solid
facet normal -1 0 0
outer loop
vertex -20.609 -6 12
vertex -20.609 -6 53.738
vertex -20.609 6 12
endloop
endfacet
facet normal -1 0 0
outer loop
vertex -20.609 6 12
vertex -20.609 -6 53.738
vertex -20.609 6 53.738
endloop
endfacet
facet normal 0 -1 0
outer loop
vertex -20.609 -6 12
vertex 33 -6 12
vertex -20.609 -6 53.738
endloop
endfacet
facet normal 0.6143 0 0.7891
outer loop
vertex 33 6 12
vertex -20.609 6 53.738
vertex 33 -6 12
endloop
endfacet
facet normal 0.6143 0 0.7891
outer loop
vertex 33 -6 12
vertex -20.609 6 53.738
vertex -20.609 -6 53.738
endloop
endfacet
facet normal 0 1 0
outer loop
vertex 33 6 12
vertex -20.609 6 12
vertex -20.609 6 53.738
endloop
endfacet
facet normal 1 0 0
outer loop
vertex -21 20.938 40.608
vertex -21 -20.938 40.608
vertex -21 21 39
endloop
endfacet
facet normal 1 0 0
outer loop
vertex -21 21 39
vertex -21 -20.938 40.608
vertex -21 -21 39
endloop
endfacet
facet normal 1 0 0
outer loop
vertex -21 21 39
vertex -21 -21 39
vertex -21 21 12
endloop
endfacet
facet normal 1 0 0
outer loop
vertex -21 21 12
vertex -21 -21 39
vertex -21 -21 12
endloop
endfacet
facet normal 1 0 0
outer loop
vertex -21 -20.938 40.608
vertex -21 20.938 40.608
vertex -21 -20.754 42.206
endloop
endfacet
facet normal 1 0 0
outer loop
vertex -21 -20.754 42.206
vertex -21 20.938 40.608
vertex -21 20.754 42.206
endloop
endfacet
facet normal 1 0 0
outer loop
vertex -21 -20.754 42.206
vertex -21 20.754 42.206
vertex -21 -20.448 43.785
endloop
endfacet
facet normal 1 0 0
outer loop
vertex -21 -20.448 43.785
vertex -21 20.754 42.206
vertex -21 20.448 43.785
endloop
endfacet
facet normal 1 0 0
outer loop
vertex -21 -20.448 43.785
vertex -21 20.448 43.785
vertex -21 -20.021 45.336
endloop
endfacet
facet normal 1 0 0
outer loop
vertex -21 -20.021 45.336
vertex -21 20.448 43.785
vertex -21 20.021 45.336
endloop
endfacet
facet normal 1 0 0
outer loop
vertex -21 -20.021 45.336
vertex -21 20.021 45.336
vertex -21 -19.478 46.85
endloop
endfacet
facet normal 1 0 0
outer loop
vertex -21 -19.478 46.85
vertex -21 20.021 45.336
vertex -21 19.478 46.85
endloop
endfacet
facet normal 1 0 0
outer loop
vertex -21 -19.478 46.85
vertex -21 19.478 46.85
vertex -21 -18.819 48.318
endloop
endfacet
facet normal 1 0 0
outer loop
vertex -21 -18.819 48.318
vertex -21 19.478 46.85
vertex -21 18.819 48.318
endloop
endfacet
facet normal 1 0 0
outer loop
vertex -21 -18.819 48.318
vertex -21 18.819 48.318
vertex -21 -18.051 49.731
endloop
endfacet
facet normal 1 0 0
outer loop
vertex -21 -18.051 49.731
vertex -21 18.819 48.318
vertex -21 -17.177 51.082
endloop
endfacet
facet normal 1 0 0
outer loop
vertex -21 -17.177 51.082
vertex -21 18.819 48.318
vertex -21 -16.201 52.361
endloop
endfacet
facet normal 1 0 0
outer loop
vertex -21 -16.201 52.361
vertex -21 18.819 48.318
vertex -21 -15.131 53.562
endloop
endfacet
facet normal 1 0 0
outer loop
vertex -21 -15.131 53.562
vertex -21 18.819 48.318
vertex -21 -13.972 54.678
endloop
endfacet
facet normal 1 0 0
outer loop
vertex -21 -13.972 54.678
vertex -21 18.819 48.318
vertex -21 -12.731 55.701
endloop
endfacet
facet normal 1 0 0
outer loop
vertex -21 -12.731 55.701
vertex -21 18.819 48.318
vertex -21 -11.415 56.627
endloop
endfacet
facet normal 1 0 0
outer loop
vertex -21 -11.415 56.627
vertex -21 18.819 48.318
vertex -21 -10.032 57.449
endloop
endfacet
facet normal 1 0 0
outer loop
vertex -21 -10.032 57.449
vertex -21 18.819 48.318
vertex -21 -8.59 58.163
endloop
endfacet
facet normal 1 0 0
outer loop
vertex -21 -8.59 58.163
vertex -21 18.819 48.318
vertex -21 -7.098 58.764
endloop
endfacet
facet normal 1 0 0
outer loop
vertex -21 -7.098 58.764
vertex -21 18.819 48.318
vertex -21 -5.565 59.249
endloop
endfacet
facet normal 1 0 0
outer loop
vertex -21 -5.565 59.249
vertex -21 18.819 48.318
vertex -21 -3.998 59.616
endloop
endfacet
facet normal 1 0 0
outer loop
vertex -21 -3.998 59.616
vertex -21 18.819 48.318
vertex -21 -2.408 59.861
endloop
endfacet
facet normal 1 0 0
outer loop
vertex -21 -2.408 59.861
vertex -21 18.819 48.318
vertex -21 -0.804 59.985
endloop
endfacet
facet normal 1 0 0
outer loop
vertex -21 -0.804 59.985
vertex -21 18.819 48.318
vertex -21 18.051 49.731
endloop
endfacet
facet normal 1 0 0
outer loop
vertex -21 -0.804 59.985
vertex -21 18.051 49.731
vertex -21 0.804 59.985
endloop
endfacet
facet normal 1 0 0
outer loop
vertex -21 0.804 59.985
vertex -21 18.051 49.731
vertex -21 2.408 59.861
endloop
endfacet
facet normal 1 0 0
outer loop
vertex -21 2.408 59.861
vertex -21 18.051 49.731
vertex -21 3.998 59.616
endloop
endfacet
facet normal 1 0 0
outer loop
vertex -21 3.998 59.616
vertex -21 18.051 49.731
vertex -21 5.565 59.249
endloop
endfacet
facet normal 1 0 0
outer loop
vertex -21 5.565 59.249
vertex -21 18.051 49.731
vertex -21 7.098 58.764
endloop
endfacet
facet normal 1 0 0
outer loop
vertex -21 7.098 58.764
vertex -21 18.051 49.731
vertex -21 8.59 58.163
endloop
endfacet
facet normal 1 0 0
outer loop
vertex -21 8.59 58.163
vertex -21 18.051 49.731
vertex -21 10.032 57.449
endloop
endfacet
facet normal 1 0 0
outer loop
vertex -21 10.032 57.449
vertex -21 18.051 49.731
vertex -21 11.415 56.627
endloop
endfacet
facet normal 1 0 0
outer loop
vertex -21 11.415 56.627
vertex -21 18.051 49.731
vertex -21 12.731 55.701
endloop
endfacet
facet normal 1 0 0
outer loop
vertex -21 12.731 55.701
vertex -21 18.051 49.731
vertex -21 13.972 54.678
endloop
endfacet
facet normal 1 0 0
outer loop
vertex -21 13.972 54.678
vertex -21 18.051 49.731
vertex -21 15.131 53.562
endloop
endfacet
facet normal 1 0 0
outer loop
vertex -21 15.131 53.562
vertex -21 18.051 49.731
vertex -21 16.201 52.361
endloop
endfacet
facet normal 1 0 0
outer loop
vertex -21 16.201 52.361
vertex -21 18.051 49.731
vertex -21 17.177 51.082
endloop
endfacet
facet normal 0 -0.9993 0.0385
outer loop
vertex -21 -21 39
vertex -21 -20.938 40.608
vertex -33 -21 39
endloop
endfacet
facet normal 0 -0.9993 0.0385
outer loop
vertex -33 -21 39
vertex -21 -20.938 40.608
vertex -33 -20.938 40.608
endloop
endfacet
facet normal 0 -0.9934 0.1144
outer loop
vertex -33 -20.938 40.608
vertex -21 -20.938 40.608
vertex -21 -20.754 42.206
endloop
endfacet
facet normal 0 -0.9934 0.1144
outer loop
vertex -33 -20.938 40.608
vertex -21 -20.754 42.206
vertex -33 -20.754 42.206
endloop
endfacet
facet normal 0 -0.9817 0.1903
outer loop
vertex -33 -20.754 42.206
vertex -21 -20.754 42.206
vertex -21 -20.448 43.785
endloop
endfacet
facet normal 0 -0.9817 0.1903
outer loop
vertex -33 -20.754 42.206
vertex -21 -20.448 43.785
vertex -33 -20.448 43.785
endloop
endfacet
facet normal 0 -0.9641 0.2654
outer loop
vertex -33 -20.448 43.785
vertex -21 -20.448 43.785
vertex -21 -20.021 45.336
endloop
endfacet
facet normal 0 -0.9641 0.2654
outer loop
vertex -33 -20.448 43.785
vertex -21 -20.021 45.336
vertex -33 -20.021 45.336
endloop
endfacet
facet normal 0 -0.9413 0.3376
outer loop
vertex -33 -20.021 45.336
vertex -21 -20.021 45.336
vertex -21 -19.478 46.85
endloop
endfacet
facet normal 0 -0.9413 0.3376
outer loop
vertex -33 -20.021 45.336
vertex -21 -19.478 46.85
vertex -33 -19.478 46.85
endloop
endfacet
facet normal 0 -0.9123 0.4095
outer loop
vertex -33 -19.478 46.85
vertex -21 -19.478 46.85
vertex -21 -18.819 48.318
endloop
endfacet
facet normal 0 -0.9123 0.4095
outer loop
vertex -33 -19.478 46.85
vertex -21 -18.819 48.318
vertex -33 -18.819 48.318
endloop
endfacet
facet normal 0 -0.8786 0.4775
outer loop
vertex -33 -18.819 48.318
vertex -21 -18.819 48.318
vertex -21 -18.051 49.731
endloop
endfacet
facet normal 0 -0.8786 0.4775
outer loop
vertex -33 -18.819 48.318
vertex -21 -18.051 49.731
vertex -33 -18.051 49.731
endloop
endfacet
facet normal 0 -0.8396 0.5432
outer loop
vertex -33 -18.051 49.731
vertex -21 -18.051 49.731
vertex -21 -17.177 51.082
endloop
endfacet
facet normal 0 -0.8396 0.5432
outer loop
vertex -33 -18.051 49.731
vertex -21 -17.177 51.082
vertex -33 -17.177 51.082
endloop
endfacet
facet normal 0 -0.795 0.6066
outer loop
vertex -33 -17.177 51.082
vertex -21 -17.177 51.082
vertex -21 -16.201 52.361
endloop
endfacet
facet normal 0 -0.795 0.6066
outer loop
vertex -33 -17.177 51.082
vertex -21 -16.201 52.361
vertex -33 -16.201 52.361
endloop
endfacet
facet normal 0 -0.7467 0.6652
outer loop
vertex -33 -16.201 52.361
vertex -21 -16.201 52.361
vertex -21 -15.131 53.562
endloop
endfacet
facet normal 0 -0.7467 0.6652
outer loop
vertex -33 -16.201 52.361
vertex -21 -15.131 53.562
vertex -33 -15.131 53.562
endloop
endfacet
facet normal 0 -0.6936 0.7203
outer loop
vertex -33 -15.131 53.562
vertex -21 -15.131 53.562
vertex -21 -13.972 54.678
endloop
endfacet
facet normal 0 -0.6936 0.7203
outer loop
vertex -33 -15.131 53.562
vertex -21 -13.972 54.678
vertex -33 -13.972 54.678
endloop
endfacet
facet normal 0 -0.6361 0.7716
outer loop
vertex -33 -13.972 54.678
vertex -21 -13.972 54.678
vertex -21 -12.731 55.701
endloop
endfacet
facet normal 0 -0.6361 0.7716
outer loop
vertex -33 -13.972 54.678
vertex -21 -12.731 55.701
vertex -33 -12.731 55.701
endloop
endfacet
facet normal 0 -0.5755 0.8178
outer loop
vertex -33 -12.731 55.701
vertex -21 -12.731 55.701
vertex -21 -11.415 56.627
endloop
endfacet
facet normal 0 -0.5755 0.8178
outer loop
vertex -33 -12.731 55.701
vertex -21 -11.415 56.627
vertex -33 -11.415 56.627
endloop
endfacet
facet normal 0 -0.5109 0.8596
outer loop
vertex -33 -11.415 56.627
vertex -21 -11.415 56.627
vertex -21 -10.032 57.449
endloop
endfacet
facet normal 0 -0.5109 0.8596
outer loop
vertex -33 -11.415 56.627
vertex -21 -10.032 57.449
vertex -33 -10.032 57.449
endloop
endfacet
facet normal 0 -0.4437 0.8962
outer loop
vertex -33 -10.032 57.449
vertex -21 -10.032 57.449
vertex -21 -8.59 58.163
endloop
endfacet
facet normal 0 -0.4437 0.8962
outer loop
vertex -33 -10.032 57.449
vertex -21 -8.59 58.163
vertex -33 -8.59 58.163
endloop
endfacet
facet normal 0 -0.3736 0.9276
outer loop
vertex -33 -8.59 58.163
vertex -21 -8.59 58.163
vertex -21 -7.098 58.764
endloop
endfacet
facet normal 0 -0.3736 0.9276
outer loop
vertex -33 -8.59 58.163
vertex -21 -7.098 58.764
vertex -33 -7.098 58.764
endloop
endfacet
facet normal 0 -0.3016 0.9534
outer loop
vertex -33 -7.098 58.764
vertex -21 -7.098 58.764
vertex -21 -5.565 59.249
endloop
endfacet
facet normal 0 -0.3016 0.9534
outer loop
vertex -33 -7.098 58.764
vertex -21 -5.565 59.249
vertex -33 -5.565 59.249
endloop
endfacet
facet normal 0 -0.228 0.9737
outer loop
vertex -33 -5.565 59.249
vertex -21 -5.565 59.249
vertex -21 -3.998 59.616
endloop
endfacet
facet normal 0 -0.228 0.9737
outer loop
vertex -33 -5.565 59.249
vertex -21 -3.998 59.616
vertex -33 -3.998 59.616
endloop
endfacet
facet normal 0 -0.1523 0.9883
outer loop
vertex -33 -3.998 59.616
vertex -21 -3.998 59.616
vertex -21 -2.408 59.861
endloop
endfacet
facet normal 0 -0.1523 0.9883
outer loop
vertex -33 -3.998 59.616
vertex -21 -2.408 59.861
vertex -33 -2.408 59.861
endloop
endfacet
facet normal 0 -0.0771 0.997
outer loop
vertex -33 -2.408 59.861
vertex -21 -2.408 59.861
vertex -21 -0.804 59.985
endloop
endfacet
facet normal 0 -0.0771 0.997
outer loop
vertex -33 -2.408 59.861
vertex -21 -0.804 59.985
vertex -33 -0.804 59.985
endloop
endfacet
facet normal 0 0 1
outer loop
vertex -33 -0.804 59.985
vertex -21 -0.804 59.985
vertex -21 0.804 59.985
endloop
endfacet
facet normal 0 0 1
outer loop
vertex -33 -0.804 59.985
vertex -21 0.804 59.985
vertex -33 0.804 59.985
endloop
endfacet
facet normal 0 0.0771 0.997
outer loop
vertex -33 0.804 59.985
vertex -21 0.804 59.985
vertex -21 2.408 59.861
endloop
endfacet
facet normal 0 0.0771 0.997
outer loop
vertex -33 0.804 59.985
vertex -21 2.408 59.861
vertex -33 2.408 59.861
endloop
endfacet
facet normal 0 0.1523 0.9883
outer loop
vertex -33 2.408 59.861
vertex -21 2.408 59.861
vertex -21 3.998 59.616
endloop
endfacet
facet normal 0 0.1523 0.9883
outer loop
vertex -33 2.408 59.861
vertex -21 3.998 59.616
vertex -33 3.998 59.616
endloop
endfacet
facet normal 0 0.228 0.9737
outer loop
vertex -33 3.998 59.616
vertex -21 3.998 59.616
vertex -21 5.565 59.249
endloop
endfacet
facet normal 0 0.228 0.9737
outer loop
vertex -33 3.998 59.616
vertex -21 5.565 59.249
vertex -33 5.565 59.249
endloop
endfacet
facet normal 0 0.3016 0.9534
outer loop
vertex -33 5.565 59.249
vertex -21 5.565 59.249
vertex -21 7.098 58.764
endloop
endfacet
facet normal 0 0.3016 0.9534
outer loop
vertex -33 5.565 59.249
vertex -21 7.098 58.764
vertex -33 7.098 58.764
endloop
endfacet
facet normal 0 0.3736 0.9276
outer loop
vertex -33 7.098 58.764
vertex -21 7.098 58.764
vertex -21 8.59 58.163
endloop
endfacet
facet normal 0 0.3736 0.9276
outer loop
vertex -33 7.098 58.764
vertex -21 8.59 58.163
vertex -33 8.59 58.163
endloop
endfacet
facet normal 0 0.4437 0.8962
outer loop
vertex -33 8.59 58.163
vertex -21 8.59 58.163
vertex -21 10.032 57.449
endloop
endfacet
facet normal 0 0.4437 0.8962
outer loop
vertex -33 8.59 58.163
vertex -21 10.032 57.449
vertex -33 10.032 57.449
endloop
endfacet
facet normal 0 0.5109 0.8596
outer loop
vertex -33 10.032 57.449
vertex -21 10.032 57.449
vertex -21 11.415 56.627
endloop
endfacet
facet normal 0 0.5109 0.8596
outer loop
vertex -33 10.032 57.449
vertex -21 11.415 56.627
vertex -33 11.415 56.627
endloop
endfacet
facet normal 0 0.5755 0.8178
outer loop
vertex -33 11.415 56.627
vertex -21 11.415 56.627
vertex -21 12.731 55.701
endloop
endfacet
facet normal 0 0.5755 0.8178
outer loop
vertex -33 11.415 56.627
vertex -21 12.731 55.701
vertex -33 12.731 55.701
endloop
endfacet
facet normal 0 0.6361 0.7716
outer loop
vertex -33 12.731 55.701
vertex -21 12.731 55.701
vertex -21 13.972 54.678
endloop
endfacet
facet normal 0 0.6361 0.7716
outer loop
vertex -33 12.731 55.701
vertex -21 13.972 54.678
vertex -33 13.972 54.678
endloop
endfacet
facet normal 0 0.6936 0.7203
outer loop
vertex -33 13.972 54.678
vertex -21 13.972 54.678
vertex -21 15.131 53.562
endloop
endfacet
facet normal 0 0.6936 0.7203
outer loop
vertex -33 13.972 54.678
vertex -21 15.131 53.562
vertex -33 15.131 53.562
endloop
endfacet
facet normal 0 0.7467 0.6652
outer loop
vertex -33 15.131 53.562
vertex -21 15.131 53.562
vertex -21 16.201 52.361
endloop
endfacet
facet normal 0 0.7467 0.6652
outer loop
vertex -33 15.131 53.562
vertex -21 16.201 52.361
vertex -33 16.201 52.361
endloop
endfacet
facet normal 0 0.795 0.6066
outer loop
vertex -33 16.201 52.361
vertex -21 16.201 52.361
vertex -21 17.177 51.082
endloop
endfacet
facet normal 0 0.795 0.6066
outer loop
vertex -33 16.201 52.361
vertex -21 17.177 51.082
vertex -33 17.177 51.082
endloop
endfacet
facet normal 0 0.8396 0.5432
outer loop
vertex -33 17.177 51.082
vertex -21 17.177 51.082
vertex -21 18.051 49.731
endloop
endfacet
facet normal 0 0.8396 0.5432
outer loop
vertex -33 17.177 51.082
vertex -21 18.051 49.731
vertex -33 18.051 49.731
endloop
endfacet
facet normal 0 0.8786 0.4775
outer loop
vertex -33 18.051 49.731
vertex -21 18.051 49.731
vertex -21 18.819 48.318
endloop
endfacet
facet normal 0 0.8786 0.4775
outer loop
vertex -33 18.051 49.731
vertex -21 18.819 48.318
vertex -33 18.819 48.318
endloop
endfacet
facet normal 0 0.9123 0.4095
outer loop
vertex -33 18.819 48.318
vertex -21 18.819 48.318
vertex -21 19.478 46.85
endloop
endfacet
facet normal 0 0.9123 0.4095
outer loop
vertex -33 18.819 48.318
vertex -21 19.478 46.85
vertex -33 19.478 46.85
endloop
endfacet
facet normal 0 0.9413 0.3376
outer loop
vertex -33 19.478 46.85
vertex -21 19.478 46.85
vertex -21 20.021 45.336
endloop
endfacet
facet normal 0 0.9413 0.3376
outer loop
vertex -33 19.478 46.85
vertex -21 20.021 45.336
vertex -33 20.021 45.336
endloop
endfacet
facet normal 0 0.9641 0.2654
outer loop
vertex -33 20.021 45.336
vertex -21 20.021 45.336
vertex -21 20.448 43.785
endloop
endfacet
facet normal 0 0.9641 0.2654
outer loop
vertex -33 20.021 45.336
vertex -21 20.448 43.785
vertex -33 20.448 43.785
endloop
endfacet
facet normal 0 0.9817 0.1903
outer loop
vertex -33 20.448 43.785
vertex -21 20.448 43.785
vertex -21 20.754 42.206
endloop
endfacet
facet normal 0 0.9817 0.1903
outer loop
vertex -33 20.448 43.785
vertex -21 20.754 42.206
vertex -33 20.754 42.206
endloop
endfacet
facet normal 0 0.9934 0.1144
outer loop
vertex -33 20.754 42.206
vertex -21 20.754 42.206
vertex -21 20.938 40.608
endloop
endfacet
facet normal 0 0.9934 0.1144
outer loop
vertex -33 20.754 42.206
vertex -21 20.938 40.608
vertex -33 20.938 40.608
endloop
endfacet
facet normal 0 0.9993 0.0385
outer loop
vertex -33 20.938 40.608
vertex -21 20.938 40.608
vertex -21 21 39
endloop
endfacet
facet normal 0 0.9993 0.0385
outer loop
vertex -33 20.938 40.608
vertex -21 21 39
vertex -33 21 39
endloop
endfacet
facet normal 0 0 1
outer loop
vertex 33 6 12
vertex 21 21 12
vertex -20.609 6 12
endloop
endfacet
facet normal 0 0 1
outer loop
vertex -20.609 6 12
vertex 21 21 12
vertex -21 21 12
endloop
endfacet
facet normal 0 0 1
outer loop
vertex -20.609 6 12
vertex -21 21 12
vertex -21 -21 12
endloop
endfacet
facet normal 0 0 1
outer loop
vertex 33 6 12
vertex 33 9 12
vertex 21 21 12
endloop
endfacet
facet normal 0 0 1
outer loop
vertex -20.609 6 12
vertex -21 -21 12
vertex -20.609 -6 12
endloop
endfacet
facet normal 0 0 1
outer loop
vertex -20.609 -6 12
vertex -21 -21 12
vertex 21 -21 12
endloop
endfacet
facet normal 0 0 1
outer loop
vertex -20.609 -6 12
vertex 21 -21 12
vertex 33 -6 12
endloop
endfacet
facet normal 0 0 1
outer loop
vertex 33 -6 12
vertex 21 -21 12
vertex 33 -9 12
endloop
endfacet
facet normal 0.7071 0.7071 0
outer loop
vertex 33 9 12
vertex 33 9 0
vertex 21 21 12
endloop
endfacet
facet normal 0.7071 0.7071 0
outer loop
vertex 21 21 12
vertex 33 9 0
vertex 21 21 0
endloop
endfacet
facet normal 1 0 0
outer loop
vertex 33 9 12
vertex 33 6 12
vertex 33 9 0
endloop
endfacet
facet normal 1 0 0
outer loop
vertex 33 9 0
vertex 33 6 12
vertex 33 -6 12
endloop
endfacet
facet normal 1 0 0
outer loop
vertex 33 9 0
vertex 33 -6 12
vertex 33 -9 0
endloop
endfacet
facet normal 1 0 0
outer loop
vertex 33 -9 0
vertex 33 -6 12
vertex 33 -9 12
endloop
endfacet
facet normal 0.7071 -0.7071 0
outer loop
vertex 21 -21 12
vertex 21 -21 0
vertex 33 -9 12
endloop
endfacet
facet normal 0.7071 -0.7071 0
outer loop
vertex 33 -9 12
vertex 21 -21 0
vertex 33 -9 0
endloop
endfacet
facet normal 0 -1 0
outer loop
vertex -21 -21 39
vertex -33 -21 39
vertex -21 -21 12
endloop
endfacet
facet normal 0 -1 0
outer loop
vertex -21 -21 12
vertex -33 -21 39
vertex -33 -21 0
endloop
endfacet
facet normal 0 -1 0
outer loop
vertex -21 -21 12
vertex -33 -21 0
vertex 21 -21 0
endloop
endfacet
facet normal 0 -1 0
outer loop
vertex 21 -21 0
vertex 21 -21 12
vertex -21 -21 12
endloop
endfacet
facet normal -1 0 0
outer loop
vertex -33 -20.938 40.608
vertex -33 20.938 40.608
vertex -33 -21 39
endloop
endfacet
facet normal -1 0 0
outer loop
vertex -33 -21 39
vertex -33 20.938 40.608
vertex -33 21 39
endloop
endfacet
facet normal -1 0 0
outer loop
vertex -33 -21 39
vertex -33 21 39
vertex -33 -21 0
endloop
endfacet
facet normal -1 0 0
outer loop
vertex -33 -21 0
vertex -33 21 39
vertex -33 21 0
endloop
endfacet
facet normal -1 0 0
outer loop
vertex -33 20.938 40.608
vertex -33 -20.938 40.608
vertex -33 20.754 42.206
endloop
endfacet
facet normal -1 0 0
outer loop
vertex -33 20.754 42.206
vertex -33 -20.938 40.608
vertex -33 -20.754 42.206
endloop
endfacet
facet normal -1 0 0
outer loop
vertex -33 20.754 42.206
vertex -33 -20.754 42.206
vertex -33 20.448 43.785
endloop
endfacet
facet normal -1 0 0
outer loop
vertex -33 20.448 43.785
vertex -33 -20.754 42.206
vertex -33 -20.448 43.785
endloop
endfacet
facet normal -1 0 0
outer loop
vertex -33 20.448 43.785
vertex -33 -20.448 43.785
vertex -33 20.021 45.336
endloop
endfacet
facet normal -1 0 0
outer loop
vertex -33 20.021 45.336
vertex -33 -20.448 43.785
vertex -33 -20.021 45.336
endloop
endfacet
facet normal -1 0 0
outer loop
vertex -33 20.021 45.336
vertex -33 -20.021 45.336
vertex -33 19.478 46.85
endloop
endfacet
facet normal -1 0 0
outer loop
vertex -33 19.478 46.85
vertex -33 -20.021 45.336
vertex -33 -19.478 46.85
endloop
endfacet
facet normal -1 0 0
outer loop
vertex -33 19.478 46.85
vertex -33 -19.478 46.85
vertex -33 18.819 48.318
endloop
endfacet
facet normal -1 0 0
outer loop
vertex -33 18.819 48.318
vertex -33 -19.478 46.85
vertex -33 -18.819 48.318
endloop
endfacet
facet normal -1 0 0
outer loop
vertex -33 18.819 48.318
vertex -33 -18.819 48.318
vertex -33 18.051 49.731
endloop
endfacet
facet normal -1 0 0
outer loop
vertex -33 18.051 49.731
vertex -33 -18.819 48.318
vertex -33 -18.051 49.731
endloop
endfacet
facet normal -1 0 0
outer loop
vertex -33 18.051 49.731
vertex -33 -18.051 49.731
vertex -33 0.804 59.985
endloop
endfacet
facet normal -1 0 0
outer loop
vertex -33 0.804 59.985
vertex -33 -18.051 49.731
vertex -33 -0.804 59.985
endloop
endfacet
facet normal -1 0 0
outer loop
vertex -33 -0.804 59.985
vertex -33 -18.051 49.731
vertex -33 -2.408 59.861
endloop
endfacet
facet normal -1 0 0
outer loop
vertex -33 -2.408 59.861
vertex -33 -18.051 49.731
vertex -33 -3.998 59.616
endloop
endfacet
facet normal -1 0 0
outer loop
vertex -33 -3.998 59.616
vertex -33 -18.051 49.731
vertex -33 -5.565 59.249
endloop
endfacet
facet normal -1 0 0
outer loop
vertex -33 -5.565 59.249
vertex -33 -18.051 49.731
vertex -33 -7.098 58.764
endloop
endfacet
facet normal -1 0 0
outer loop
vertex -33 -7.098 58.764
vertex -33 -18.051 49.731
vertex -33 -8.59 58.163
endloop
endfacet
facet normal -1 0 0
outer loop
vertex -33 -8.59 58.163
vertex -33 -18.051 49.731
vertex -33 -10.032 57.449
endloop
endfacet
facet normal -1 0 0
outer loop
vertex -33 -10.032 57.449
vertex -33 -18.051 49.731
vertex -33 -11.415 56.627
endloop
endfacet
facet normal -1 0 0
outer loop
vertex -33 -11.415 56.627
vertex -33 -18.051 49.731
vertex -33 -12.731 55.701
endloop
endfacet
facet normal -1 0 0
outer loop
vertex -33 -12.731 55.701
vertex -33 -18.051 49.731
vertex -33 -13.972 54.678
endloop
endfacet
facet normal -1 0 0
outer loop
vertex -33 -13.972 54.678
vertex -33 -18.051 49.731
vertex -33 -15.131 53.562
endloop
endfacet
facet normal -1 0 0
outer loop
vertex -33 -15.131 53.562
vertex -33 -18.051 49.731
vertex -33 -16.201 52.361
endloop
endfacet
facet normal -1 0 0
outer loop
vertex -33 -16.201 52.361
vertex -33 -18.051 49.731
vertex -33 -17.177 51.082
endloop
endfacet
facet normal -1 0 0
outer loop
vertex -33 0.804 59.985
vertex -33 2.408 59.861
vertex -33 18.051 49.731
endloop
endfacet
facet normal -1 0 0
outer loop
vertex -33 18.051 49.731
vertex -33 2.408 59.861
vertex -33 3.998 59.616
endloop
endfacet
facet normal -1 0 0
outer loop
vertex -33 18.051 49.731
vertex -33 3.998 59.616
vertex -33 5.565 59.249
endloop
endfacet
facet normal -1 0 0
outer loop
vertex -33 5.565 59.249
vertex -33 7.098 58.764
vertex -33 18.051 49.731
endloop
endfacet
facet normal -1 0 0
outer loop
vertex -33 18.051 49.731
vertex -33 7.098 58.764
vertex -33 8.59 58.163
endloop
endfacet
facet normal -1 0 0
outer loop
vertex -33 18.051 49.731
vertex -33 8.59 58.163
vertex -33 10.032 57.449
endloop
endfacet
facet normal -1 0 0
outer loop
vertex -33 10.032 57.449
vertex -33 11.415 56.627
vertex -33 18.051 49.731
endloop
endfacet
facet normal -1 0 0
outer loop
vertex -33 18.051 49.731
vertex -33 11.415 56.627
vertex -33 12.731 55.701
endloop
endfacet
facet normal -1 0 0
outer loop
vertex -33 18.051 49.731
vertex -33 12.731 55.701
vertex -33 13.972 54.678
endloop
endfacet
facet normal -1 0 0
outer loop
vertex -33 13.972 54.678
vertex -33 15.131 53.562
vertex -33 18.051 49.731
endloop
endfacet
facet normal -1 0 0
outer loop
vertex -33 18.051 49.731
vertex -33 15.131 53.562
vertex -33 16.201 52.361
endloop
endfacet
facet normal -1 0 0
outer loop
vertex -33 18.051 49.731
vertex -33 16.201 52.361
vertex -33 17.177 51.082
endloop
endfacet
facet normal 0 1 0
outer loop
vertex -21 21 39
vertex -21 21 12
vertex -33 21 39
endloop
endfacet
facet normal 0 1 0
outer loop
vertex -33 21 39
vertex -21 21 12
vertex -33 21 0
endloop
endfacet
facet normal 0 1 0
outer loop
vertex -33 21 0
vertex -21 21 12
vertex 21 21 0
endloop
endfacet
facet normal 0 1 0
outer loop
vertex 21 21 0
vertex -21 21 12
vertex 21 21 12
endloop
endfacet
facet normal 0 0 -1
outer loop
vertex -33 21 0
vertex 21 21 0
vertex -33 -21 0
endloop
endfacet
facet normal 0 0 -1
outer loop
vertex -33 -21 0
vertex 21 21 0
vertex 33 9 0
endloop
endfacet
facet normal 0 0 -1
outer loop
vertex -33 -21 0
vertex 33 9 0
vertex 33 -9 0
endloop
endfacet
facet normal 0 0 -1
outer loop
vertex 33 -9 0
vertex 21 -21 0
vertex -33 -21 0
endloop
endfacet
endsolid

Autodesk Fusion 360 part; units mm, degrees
sketch "bottom" plane through (0, 0, 0) normal (0, 0, 1) x (1, 0, 0)
  line L0 (33, 21) -> (-33, 21)
  line L1 (-33, 21) -> (-33, -21)
  line L2 (-33, -21) -> (33, -21)
  line L3 (33, -21) -> (33, 21)
  line L4 (33, 21) -> (-33, -21) construction
  line L5 (-33, 21) -> (33, -21) construction
  dimension "d1" = 66
  dimension "d2" = 42
extrude "Extrude1" add sketch "bottom" along normal blind 12
chamfer "Chamfer1" distance 12 angle 45 2 edges at (33, -21, 6) (33, 21, 6)
sketch "vertical" plane through (0, 0, 12) normal (0, 0, 1) x (-1, 0, 0)
  line L0 (-33, -9) -> (-21, -21)
  line L1 (-21, -21) -> (33, -21)
  line L2 (33, -21) -> (33, 21)
  line L3 (33, 21) -> (-21, 21)
  line L4 (-21, 21) -> (-33, 9)
  line L5 (-33, 9) -> (-33, -9)
  line L6 (33, -21) -> (21, -21)
  line L7 (21, -21) -> (21, 21)
  line L8 (21, 21) -> (33, 21)
  line L9 (33, 21) -> (33, -21)
  dimension "d6" = 12
extrude "Extrude2" add sketch "vertical" along normal blind 48 contours L1 L2 L3 L6 L7 L8 L9
fillet "Fillet1" radius 21 2 edges at (-27, -21, 60) (-27, 21, 60)
sketch "triangle" plane through (0, 0, 0) normal (0, 1, 0) x (1, 0, 0)
  line L0 (-20.6092, -11.7383) -> (-20.6092, -53.7383)
  line L1 (-20.6092, -53.7383) -> (33, -12)
  line L2 (33, -12) -> (-20.6092, -11.7383)
  dimension "d10" = 42
extrude "Extrude4" add sketch "triangle" along normal mid plane 12
extrude "Extrude3" [suppressed]
